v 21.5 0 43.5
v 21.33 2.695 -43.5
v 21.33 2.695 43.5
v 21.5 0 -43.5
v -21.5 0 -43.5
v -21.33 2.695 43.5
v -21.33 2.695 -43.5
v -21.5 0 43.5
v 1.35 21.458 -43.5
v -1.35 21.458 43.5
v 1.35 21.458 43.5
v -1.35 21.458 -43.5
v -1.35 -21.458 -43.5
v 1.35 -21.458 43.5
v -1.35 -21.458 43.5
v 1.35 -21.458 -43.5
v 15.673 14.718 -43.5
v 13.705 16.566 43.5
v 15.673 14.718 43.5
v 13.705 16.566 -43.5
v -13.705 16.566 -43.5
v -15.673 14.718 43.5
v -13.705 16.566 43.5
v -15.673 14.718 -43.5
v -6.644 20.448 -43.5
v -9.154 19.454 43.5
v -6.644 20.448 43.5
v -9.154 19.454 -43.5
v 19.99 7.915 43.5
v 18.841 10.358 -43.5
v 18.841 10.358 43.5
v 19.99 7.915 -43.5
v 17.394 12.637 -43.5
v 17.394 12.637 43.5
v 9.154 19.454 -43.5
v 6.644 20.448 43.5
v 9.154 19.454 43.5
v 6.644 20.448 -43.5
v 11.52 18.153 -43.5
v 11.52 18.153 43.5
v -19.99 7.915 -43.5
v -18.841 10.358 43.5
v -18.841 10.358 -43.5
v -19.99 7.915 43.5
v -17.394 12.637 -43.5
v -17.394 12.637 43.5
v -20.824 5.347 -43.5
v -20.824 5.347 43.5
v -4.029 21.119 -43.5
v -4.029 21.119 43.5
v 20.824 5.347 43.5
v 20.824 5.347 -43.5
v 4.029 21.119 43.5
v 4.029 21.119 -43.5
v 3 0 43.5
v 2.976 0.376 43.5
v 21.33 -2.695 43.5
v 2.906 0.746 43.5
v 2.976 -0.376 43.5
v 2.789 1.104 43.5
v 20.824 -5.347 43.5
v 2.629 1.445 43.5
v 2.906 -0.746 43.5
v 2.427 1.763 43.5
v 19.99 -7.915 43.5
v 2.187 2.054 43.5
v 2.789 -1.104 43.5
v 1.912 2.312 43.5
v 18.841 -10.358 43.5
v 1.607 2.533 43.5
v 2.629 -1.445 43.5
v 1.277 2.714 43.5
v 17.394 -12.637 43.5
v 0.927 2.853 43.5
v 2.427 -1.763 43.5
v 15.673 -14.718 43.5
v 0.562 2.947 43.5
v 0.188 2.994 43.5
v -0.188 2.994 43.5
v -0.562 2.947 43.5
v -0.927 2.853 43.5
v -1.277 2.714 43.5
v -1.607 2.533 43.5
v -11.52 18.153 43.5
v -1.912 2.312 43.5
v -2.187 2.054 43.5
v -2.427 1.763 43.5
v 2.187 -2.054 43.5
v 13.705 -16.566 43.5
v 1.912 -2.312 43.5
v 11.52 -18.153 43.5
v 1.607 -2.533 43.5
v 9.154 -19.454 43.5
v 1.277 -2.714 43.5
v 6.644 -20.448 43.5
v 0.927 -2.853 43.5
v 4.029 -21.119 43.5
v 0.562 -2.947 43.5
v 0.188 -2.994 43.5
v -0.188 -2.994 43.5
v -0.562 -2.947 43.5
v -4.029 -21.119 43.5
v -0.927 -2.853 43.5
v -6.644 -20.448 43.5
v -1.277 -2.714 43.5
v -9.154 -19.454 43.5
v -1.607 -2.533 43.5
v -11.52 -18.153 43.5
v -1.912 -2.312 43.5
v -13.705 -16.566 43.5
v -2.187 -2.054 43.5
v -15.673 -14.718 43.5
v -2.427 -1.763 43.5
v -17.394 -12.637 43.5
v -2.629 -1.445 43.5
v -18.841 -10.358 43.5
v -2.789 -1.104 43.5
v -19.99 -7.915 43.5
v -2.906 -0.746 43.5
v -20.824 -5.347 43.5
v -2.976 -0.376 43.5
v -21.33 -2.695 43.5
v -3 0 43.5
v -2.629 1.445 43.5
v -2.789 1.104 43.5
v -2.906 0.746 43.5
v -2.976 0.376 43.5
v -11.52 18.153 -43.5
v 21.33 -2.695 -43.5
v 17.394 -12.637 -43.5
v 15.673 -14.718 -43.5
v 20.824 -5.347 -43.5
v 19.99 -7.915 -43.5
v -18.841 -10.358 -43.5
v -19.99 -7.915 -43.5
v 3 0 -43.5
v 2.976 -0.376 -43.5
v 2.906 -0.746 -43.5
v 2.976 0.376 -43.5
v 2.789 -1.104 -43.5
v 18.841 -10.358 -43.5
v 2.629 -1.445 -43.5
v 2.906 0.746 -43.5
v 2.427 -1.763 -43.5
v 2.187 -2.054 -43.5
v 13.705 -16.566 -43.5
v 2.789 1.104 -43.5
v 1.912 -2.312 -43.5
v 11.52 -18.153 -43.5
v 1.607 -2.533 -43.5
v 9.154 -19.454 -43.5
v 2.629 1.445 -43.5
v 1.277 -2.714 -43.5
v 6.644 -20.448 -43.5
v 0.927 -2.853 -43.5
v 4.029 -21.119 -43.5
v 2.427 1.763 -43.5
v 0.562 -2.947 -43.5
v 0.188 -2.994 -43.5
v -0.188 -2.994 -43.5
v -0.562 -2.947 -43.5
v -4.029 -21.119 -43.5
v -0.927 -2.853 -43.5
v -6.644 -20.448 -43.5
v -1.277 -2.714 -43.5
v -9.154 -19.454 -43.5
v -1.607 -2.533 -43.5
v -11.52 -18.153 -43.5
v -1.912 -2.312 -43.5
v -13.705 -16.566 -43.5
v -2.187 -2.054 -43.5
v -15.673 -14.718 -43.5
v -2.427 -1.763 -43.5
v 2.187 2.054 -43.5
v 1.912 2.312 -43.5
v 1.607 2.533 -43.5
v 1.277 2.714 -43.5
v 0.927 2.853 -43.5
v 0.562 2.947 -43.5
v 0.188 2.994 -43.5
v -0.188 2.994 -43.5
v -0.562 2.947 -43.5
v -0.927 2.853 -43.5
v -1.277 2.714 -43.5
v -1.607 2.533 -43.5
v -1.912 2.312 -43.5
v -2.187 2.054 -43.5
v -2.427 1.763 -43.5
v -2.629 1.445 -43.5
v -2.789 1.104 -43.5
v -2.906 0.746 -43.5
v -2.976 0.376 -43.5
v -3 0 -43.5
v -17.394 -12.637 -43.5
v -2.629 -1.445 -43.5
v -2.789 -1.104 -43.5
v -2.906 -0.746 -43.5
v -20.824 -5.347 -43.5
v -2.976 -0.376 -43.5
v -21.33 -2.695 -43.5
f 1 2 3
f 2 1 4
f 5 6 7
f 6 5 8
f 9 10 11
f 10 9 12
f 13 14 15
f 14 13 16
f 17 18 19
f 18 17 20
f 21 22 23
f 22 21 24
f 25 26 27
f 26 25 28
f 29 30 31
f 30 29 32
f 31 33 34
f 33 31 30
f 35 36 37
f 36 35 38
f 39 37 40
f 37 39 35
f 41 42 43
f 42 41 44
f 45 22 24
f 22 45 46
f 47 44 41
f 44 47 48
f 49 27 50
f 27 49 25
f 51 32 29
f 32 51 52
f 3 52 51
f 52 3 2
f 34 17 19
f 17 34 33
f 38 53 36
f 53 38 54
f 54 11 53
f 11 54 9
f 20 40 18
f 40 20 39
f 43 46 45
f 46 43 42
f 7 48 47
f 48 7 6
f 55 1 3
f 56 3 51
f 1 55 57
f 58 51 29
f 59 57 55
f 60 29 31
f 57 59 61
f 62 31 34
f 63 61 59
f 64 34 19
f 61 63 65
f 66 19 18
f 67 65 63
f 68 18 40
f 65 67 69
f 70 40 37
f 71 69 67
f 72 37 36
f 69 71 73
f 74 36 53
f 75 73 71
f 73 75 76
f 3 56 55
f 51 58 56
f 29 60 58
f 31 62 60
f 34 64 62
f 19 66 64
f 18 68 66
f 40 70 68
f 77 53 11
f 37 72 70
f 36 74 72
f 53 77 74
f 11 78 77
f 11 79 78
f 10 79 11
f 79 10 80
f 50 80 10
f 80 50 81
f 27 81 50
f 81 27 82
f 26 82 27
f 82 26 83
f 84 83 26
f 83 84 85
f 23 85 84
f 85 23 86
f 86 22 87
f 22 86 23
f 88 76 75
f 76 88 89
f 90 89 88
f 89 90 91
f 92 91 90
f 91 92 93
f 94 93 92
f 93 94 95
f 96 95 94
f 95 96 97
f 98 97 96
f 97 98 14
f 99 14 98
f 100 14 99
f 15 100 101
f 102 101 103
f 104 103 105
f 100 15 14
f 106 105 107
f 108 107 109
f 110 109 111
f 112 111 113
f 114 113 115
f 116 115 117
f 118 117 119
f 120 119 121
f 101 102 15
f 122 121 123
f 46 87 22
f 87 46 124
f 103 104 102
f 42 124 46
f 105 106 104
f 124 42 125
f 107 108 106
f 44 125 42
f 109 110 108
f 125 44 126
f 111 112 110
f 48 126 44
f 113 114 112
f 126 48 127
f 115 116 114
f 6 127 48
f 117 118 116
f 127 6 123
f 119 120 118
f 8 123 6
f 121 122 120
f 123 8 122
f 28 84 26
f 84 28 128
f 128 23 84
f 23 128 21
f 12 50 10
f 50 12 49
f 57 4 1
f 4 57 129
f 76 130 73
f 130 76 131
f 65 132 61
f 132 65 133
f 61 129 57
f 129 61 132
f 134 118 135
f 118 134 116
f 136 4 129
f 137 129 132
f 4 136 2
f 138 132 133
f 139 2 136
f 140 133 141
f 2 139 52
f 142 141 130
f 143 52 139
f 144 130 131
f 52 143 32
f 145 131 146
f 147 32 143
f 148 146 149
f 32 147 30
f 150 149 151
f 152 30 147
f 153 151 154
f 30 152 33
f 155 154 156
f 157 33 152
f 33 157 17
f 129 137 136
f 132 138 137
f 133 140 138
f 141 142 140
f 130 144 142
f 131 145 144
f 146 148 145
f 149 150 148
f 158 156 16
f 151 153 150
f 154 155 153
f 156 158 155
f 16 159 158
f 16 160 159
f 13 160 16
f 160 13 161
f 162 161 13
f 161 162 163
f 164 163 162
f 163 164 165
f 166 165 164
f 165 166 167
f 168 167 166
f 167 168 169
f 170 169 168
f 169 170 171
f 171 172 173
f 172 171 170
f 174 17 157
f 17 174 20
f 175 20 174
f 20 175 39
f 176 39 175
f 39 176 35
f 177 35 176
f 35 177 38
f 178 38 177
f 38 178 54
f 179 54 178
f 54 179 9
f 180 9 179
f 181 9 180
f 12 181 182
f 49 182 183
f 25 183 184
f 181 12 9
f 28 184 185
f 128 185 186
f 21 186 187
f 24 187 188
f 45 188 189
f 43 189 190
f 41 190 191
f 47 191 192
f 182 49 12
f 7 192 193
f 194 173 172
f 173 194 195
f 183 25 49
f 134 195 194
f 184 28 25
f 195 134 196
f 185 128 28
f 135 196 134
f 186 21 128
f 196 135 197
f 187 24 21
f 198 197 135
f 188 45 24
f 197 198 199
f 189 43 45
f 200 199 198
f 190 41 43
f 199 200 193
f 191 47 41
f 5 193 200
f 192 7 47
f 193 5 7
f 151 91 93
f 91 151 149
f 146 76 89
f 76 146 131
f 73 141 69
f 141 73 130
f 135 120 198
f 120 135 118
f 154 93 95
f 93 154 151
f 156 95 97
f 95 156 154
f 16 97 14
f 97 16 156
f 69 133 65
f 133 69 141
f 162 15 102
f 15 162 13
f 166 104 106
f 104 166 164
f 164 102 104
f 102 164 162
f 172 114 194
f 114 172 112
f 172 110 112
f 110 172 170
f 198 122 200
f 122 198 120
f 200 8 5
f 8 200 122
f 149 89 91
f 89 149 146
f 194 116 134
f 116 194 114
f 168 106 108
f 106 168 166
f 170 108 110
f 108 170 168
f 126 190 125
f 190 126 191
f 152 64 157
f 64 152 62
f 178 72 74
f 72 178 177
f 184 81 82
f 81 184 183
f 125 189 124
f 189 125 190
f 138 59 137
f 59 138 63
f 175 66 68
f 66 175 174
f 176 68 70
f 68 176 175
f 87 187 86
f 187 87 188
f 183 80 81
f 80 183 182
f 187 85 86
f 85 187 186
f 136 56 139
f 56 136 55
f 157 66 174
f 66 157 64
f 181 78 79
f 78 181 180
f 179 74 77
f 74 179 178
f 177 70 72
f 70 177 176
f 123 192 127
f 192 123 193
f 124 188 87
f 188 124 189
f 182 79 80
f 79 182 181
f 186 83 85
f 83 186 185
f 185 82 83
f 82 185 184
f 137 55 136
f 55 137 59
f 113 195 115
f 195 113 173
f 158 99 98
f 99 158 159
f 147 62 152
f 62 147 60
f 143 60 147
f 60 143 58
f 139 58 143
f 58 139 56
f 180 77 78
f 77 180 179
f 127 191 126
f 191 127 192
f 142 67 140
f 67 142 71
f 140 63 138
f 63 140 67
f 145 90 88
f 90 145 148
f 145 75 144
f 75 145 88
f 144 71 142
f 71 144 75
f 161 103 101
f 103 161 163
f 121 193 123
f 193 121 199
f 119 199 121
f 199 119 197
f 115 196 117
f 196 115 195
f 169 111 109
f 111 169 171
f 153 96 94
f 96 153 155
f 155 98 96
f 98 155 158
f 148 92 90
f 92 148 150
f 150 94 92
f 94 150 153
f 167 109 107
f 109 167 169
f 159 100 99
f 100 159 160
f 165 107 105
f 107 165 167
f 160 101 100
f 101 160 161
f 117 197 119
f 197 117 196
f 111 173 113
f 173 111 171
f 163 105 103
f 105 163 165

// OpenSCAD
$fn = 50;


difference() {
	union() {
		translate(v = [0, 0, -43.5000000000]) {
			cylinder(h = 87, r = 21.5000000000);
		}
	}
	union() {
		translate(v = [0, 0, -100.0000000000]) {
			cylinder(h = 200, r = 3);
		}
	}
}
